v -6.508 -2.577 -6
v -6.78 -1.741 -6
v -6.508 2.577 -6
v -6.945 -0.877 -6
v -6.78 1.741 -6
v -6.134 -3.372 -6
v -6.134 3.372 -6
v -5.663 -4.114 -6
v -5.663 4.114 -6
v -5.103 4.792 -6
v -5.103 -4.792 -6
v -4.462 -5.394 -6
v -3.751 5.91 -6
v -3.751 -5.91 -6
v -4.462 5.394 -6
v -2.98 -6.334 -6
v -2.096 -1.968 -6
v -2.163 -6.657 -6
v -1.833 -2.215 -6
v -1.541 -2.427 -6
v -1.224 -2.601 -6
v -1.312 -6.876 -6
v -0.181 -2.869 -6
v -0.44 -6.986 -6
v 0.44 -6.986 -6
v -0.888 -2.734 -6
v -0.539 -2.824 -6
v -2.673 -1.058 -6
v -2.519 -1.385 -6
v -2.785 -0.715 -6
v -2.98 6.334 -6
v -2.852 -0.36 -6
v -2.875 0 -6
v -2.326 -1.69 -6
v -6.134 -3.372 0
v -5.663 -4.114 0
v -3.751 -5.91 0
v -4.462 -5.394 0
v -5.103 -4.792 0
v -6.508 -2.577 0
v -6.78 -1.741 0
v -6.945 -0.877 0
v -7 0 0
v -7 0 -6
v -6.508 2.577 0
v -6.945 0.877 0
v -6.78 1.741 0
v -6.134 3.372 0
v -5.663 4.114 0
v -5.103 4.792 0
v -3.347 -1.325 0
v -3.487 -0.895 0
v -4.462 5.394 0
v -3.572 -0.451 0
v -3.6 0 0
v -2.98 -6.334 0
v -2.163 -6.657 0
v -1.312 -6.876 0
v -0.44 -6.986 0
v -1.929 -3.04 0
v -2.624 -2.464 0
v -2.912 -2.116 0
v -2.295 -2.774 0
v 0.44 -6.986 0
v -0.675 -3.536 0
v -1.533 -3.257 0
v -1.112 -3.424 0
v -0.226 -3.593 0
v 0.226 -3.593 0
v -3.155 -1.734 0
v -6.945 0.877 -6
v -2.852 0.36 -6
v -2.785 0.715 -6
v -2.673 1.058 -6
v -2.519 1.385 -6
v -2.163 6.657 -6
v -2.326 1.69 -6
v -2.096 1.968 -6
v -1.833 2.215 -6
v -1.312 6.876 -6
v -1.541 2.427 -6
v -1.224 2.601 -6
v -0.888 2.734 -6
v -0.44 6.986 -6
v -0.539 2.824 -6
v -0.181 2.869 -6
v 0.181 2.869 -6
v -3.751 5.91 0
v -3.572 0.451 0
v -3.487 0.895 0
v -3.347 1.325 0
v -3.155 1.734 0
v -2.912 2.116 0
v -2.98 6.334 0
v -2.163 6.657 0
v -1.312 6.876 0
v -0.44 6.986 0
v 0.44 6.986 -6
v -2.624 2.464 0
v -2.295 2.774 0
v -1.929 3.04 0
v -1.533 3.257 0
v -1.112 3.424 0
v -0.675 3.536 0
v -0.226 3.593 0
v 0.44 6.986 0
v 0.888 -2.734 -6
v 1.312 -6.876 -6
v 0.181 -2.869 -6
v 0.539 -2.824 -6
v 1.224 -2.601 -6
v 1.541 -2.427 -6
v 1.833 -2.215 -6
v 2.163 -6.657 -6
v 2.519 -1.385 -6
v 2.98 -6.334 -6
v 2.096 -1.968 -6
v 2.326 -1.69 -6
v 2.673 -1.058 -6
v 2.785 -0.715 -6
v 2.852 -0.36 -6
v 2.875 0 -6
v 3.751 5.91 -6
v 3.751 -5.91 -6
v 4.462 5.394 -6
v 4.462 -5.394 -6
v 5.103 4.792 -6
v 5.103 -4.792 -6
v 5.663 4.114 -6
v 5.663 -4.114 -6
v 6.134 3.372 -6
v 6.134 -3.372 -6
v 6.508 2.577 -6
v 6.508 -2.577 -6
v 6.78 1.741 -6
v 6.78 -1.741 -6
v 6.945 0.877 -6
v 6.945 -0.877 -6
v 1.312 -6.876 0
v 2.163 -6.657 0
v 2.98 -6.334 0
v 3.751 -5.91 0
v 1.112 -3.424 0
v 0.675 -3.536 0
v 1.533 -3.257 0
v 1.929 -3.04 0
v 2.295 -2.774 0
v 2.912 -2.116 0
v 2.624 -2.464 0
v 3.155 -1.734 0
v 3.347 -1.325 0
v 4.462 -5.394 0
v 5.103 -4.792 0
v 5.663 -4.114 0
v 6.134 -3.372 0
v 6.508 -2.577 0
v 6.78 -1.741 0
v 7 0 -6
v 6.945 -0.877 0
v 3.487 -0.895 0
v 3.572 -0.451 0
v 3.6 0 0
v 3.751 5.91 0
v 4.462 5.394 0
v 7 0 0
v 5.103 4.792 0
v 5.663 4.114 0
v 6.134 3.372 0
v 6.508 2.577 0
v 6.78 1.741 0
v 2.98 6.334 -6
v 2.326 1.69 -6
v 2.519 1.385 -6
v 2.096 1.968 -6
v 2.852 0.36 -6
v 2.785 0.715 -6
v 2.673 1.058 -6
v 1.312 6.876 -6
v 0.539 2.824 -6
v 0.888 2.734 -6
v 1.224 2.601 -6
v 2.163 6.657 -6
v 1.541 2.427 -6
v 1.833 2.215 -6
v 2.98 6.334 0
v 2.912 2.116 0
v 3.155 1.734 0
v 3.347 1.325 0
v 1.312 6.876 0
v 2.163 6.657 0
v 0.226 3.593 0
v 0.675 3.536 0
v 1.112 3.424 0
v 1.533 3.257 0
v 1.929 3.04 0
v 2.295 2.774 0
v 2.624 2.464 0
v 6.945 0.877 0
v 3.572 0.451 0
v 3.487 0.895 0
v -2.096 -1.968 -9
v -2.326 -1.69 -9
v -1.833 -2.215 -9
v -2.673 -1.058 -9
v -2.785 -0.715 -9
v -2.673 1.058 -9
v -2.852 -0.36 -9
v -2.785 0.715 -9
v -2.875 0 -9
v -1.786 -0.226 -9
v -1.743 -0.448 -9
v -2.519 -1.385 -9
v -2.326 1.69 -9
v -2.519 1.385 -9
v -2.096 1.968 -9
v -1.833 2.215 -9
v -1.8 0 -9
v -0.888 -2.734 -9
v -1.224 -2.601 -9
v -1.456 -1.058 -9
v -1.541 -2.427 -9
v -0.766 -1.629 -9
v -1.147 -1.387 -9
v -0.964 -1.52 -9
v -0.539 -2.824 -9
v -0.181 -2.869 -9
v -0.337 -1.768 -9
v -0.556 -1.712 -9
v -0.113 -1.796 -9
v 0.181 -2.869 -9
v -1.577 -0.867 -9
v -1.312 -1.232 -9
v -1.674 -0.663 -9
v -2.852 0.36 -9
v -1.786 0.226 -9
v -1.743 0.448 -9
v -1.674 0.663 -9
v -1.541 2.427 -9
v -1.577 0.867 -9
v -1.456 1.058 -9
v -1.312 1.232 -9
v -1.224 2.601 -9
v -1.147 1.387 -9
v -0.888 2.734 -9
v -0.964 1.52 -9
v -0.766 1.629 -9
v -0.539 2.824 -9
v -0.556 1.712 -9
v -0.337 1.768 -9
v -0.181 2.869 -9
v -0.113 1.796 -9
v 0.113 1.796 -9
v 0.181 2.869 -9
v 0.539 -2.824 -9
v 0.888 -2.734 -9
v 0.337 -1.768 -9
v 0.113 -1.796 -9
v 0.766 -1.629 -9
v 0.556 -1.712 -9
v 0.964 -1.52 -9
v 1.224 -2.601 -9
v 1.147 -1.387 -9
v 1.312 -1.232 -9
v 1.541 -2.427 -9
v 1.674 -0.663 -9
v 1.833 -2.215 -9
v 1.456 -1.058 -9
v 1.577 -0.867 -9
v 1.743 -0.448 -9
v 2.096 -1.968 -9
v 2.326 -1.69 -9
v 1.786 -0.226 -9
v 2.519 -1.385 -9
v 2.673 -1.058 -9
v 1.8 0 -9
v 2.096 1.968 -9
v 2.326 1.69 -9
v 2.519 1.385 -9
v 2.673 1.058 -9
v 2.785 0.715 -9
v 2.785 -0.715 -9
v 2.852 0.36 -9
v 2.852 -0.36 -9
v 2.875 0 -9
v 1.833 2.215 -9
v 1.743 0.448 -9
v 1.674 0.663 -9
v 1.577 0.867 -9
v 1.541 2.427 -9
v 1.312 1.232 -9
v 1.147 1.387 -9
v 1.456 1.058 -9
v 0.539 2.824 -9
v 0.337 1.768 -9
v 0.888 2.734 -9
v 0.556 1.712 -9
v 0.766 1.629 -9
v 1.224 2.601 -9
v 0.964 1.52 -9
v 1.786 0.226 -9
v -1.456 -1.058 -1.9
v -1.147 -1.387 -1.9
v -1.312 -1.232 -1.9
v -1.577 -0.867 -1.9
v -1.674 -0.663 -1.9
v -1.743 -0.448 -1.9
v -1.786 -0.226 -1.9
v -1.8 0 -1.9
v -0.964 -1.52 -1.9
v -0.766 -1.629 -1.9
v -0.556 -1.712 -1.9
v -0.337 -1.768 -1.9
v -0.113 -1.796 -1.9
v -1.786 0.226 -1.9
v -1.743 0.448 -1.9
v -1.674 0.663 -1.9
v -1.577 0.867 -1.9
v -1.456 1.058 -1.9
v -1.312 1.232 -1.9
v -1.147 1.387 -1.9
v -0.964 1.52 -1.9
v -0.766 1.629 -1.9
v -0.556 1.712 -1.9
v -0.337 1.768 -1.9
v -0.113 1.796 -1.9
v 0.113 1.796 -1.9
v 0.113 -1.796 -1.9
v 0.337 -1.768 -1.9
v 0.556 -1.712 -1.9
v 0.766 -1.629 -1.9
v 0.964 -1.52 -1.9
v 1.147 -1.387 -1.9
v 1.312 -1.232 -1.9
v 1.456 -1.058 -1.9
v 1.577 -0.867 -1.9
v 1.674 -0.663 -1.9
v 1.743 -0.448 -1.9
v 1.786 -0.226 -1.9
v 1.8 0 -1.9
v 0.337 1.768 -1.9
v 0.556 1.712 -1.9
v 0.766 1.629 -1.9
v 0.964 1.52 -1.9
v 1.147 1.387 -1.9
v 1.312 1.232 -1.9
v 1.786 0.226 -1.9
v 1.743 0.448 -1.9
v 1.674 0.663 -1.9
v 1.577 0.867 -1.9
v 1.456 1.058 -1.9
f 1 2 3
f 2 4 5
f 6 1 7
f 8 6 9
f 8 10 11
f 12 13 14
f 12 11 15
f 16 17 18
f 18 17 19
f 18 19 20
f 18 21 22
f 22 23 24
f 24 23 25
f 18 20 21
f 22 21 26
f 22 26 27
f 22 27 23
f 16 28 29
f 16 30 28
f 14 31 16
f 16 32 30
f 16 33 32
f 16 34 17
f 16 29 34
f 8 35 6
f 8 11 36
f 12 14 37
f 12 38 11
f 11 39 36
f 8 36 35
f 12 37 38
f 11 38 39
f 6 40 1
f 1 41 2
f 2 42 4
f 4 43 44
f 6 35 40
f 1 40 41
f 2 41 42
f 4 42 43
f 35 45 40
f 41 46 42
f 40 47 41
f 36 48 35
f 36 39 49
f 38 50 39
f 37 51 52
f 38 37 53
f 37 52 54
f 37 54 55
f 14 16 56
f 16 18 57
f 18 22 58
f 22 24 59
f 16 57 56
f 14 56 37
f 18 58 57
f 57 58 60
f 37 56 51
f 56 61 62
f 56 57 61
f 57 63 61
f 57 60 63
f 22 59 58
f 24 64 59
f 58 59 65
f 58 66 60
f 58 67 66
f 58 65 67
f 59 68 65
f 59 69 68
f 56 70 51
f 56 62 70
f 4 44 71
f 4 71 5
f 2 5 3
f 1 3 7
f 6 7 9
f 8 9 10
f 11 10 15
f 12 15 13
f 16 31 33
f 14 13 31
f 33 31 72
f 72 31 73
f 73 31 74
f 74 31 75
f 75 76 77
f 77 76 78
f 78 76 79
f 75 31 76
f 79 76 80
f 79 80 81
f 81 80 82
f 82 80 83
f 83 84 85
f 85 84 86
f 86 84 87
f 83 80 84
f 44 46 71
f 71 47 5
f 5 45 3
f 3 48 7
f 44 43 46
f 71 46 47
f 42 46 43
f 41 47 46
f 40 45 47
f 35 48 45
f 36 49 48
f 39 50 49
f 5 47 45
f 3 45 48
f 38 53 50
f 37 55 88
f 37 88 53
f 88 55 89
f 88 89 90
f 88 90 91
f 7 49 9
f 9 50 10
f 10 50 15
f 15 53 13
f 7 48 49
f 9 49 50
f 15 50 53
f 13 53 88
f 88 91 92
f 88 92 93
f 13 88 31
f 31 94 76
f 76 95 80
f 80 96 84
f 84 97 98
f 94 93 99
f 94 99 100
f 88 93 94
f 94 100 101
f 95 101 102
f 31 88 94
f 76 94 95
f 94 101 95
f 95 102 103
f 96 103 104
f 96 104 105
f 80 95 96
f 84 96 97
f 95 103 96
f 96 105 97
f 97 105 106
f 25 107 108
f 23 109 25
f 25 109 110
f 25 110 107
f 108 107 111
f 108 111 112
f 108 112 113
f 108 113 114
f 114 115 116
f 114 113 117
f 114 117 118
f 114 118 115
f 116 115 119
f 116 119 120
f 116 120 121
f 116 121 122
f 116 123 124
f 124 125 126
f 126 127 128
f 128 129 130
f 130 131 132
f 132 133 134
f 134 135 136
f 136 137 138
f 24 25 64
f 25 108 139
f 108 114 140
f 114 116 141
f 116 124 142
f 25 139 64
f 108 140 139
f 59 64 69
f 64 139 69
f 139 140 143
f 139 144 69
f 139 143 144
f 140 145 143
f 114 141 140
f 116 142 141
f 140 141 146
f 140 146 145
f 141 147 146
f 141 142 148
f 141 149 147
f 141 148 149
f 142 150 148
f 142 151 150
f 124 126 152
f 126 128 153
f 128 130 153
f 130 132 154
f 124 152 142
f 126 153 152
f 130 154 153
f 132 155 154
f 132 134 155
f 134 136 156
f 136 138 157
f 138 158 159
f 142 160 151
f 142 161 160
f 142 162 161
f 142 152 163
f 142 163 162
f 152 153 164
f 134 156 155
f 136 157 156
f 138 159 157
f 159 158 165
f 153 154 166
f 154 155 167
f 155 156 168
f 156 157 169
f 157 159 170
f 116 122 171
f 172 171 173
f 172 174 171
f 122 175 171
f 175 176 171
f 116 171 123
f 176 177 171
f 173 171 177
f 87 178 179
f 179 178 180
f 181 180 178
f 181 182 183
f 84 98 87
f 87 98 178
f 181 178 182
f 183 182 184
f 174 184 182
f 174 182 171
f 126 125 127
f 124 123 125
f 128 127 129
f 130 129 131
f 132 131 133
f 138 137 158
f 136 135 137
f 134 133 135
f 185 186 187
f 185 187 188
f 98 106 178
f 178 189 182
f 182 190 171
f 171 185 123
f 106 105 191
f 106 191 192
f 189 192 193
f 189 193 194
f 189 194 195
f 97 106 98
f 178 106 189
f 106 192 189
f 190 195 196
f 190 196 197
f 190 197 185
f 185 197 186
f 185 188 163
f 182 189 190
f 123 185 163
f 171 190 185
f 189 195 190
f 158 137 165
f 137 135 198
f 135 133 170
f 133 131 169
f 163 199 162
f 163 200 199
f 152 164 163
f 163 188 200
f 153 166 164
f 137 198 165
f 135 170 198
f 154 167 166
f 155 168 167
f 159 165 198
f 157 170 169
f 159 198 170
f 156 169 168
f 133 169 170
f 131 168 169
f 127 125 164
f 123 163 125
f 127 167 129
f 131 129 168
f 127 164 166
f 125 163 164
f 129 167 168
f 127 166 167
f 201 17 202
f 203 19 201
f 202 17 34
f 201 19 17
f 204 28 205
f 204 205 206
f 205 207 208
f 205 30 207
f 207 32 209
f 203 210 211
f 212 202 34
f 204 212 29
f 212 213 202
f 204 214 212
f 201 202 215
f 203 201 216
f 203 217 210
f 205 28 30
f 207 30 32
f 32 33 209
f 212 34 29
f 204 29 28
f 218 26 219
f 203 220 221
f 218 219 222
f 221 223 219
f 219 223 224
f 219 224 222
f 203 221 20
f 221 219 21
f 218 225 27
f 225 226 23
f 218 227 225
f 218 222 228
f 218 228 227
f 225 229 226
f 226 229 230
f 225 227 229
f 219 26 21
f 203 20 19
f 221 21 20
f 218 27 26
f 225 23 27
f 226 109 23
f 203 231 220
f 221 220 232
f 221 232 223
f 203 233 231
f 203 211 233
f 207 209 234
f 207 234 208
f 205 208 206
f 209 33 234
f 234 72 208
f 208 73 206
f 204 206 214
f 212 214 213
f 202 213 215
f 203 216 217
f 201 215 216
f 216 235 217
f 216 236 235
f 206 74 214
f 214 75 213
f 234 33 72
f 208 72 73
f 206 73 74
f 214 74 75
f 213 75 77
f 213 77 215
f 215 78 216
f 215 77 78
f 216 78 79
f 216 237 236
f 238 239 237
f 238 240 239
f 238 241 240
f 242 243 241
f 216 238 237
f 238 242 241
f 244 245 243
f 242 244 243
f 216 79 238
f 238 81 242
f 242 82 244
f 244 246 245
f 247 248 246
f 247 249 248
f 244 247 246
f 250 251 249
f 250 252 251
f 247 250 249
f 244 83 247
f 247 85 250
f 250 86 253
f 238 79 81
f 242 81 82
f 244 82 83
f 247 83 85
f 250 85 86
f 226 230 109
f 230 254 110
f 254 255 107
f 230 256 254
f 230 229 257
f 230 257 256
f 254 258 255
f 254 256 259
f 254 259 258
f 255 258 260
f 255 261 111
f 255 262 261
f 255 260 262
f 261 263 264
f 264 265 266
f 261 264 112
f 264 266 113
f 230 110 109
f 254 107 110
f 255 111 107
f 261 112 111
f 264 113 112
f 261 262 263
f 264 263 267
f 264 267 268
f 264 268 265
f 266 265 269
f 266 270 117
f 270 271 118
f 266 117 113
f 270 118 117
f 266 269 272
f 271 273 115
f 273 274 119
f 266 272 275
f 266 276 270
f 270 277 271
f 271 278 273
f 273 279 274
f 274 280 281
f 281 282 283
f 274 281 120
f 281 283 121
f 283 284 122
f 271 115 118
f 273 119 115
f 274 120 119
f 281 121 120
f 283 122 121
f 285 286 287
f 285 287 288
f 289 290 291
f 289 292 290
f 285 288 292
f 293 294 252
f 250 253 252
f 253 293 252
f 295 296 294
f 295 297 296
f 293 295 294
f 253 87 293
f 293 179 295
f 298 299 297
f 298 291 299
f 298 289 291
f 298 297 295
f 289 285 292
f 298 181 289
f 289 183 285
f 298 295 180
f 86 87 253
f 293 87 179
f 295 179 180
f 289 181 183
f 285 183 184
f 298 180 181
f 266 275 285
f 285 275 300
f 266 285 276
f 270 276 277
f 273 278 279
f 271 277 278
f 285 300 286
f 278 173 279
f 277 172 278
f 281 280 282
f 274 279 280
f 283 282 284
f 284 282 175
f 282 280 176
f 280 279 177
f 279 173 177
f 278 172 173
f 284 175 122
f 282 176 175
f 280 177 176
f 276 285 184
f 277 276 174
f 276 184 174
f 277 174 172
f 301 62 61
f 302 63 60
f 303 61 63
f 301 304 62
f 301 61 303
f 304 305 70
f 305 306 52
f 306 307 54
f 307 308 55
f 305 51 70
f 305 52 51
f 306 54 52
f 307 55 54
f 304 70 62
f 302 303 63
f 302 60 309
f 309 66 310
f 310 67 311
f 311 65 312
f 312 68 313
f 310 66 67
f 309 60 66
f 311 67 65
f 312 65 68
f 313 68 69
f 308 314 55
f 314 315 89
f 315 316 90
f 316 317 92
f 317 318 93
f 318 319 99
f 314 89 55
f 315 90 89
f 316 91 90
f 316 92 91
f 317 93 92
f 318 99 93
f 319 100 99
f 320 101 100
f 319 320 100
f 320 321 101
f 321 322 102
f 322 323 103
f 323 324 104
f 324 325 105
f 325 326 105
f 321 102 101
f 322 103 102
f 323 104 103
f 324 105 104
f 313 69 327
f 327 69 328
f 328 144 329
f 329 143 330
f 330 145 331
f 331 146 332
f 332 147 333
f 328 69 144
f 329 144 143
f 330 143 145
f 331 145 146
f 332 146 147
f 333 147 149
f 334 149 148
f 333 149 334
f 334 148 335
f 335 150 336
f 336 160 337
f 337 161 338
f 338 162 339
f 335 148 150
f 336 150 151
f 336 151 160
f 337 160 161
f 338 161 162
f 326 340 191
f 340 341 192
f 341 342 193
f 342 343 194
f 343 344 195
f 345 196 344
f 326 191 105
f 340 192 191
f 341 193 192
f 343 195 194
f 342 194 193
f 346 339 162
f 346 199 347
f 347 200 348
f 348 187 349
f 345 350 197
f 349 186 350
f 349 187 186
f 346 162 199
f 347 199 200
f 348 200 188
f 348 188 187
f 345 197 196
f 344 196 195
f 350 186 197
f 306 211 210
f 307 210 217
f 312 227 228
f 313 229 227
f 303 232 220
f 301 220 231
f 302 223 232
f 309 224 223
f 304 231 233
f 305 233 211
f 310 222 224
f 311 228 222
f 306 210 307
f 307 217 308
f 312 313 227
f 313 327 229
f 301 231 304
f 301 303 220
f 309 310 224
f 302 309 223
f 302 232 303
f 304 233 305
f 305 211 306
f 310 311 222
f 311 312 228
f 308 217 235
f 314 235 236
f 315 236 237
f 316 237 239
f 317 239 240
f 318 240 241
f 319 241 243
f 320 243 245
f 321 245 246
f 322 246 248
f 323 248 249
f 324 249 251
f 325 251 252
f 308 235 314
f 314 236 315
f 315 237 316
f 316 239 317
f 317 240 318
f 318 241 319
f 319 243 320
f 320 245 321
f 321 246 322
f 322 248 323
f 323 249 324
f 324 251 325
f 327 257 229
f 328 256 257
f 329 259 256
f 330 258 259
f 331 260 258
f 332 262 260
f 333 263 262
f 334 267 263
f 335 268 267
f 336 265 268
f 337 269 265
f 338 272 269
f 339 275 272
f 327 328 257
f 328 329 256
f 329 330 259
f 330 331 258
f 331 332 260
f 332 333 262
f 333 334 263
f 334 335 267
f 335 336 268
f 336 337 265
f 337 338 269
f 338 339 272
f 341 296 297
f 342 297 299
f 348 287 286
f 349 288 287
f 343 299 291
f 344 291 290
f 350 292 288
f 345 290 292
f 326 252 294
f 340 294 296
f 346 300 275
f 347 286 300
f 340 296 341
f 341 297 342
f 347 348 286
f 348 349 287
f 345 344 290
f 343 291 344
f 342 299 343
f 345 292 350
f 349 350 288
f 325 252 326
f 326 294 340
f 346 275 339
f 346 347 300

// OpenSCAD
$fn = 50;

difference() {
	union() {
		translate(v = [0, 0, -6.0]) {
			cylinder(h = 6, r = 7.0);
		}
		#translate(v = [0, 0, -9.0]) {
			cylinder(h = 9, r = 2.875);
		}
	}
	union() {
		translate(v = [0, 0, 0]) {
			rotate(a = [0, 0, 0]) {
				difference() {
					union() {
						translate(v = [0, 0, -9.0]) {
							cylinder(h = 9, r = 1.5);
						}
						translate(v = [0, 0, -1.9]) {
							cylinder(h = 1.9, r1 = 1.8, r2 = 3.6);
						}
						translate(v = [0, 0, -9.0]) {
							cylinder(h = 9, r = 1.8);
						}
						translate(v = [0, 0, -9.0]) {
							cylinder(h = 9, r = 1.5);
						}
					}
					union();
				}
			}
		}
	}
}
